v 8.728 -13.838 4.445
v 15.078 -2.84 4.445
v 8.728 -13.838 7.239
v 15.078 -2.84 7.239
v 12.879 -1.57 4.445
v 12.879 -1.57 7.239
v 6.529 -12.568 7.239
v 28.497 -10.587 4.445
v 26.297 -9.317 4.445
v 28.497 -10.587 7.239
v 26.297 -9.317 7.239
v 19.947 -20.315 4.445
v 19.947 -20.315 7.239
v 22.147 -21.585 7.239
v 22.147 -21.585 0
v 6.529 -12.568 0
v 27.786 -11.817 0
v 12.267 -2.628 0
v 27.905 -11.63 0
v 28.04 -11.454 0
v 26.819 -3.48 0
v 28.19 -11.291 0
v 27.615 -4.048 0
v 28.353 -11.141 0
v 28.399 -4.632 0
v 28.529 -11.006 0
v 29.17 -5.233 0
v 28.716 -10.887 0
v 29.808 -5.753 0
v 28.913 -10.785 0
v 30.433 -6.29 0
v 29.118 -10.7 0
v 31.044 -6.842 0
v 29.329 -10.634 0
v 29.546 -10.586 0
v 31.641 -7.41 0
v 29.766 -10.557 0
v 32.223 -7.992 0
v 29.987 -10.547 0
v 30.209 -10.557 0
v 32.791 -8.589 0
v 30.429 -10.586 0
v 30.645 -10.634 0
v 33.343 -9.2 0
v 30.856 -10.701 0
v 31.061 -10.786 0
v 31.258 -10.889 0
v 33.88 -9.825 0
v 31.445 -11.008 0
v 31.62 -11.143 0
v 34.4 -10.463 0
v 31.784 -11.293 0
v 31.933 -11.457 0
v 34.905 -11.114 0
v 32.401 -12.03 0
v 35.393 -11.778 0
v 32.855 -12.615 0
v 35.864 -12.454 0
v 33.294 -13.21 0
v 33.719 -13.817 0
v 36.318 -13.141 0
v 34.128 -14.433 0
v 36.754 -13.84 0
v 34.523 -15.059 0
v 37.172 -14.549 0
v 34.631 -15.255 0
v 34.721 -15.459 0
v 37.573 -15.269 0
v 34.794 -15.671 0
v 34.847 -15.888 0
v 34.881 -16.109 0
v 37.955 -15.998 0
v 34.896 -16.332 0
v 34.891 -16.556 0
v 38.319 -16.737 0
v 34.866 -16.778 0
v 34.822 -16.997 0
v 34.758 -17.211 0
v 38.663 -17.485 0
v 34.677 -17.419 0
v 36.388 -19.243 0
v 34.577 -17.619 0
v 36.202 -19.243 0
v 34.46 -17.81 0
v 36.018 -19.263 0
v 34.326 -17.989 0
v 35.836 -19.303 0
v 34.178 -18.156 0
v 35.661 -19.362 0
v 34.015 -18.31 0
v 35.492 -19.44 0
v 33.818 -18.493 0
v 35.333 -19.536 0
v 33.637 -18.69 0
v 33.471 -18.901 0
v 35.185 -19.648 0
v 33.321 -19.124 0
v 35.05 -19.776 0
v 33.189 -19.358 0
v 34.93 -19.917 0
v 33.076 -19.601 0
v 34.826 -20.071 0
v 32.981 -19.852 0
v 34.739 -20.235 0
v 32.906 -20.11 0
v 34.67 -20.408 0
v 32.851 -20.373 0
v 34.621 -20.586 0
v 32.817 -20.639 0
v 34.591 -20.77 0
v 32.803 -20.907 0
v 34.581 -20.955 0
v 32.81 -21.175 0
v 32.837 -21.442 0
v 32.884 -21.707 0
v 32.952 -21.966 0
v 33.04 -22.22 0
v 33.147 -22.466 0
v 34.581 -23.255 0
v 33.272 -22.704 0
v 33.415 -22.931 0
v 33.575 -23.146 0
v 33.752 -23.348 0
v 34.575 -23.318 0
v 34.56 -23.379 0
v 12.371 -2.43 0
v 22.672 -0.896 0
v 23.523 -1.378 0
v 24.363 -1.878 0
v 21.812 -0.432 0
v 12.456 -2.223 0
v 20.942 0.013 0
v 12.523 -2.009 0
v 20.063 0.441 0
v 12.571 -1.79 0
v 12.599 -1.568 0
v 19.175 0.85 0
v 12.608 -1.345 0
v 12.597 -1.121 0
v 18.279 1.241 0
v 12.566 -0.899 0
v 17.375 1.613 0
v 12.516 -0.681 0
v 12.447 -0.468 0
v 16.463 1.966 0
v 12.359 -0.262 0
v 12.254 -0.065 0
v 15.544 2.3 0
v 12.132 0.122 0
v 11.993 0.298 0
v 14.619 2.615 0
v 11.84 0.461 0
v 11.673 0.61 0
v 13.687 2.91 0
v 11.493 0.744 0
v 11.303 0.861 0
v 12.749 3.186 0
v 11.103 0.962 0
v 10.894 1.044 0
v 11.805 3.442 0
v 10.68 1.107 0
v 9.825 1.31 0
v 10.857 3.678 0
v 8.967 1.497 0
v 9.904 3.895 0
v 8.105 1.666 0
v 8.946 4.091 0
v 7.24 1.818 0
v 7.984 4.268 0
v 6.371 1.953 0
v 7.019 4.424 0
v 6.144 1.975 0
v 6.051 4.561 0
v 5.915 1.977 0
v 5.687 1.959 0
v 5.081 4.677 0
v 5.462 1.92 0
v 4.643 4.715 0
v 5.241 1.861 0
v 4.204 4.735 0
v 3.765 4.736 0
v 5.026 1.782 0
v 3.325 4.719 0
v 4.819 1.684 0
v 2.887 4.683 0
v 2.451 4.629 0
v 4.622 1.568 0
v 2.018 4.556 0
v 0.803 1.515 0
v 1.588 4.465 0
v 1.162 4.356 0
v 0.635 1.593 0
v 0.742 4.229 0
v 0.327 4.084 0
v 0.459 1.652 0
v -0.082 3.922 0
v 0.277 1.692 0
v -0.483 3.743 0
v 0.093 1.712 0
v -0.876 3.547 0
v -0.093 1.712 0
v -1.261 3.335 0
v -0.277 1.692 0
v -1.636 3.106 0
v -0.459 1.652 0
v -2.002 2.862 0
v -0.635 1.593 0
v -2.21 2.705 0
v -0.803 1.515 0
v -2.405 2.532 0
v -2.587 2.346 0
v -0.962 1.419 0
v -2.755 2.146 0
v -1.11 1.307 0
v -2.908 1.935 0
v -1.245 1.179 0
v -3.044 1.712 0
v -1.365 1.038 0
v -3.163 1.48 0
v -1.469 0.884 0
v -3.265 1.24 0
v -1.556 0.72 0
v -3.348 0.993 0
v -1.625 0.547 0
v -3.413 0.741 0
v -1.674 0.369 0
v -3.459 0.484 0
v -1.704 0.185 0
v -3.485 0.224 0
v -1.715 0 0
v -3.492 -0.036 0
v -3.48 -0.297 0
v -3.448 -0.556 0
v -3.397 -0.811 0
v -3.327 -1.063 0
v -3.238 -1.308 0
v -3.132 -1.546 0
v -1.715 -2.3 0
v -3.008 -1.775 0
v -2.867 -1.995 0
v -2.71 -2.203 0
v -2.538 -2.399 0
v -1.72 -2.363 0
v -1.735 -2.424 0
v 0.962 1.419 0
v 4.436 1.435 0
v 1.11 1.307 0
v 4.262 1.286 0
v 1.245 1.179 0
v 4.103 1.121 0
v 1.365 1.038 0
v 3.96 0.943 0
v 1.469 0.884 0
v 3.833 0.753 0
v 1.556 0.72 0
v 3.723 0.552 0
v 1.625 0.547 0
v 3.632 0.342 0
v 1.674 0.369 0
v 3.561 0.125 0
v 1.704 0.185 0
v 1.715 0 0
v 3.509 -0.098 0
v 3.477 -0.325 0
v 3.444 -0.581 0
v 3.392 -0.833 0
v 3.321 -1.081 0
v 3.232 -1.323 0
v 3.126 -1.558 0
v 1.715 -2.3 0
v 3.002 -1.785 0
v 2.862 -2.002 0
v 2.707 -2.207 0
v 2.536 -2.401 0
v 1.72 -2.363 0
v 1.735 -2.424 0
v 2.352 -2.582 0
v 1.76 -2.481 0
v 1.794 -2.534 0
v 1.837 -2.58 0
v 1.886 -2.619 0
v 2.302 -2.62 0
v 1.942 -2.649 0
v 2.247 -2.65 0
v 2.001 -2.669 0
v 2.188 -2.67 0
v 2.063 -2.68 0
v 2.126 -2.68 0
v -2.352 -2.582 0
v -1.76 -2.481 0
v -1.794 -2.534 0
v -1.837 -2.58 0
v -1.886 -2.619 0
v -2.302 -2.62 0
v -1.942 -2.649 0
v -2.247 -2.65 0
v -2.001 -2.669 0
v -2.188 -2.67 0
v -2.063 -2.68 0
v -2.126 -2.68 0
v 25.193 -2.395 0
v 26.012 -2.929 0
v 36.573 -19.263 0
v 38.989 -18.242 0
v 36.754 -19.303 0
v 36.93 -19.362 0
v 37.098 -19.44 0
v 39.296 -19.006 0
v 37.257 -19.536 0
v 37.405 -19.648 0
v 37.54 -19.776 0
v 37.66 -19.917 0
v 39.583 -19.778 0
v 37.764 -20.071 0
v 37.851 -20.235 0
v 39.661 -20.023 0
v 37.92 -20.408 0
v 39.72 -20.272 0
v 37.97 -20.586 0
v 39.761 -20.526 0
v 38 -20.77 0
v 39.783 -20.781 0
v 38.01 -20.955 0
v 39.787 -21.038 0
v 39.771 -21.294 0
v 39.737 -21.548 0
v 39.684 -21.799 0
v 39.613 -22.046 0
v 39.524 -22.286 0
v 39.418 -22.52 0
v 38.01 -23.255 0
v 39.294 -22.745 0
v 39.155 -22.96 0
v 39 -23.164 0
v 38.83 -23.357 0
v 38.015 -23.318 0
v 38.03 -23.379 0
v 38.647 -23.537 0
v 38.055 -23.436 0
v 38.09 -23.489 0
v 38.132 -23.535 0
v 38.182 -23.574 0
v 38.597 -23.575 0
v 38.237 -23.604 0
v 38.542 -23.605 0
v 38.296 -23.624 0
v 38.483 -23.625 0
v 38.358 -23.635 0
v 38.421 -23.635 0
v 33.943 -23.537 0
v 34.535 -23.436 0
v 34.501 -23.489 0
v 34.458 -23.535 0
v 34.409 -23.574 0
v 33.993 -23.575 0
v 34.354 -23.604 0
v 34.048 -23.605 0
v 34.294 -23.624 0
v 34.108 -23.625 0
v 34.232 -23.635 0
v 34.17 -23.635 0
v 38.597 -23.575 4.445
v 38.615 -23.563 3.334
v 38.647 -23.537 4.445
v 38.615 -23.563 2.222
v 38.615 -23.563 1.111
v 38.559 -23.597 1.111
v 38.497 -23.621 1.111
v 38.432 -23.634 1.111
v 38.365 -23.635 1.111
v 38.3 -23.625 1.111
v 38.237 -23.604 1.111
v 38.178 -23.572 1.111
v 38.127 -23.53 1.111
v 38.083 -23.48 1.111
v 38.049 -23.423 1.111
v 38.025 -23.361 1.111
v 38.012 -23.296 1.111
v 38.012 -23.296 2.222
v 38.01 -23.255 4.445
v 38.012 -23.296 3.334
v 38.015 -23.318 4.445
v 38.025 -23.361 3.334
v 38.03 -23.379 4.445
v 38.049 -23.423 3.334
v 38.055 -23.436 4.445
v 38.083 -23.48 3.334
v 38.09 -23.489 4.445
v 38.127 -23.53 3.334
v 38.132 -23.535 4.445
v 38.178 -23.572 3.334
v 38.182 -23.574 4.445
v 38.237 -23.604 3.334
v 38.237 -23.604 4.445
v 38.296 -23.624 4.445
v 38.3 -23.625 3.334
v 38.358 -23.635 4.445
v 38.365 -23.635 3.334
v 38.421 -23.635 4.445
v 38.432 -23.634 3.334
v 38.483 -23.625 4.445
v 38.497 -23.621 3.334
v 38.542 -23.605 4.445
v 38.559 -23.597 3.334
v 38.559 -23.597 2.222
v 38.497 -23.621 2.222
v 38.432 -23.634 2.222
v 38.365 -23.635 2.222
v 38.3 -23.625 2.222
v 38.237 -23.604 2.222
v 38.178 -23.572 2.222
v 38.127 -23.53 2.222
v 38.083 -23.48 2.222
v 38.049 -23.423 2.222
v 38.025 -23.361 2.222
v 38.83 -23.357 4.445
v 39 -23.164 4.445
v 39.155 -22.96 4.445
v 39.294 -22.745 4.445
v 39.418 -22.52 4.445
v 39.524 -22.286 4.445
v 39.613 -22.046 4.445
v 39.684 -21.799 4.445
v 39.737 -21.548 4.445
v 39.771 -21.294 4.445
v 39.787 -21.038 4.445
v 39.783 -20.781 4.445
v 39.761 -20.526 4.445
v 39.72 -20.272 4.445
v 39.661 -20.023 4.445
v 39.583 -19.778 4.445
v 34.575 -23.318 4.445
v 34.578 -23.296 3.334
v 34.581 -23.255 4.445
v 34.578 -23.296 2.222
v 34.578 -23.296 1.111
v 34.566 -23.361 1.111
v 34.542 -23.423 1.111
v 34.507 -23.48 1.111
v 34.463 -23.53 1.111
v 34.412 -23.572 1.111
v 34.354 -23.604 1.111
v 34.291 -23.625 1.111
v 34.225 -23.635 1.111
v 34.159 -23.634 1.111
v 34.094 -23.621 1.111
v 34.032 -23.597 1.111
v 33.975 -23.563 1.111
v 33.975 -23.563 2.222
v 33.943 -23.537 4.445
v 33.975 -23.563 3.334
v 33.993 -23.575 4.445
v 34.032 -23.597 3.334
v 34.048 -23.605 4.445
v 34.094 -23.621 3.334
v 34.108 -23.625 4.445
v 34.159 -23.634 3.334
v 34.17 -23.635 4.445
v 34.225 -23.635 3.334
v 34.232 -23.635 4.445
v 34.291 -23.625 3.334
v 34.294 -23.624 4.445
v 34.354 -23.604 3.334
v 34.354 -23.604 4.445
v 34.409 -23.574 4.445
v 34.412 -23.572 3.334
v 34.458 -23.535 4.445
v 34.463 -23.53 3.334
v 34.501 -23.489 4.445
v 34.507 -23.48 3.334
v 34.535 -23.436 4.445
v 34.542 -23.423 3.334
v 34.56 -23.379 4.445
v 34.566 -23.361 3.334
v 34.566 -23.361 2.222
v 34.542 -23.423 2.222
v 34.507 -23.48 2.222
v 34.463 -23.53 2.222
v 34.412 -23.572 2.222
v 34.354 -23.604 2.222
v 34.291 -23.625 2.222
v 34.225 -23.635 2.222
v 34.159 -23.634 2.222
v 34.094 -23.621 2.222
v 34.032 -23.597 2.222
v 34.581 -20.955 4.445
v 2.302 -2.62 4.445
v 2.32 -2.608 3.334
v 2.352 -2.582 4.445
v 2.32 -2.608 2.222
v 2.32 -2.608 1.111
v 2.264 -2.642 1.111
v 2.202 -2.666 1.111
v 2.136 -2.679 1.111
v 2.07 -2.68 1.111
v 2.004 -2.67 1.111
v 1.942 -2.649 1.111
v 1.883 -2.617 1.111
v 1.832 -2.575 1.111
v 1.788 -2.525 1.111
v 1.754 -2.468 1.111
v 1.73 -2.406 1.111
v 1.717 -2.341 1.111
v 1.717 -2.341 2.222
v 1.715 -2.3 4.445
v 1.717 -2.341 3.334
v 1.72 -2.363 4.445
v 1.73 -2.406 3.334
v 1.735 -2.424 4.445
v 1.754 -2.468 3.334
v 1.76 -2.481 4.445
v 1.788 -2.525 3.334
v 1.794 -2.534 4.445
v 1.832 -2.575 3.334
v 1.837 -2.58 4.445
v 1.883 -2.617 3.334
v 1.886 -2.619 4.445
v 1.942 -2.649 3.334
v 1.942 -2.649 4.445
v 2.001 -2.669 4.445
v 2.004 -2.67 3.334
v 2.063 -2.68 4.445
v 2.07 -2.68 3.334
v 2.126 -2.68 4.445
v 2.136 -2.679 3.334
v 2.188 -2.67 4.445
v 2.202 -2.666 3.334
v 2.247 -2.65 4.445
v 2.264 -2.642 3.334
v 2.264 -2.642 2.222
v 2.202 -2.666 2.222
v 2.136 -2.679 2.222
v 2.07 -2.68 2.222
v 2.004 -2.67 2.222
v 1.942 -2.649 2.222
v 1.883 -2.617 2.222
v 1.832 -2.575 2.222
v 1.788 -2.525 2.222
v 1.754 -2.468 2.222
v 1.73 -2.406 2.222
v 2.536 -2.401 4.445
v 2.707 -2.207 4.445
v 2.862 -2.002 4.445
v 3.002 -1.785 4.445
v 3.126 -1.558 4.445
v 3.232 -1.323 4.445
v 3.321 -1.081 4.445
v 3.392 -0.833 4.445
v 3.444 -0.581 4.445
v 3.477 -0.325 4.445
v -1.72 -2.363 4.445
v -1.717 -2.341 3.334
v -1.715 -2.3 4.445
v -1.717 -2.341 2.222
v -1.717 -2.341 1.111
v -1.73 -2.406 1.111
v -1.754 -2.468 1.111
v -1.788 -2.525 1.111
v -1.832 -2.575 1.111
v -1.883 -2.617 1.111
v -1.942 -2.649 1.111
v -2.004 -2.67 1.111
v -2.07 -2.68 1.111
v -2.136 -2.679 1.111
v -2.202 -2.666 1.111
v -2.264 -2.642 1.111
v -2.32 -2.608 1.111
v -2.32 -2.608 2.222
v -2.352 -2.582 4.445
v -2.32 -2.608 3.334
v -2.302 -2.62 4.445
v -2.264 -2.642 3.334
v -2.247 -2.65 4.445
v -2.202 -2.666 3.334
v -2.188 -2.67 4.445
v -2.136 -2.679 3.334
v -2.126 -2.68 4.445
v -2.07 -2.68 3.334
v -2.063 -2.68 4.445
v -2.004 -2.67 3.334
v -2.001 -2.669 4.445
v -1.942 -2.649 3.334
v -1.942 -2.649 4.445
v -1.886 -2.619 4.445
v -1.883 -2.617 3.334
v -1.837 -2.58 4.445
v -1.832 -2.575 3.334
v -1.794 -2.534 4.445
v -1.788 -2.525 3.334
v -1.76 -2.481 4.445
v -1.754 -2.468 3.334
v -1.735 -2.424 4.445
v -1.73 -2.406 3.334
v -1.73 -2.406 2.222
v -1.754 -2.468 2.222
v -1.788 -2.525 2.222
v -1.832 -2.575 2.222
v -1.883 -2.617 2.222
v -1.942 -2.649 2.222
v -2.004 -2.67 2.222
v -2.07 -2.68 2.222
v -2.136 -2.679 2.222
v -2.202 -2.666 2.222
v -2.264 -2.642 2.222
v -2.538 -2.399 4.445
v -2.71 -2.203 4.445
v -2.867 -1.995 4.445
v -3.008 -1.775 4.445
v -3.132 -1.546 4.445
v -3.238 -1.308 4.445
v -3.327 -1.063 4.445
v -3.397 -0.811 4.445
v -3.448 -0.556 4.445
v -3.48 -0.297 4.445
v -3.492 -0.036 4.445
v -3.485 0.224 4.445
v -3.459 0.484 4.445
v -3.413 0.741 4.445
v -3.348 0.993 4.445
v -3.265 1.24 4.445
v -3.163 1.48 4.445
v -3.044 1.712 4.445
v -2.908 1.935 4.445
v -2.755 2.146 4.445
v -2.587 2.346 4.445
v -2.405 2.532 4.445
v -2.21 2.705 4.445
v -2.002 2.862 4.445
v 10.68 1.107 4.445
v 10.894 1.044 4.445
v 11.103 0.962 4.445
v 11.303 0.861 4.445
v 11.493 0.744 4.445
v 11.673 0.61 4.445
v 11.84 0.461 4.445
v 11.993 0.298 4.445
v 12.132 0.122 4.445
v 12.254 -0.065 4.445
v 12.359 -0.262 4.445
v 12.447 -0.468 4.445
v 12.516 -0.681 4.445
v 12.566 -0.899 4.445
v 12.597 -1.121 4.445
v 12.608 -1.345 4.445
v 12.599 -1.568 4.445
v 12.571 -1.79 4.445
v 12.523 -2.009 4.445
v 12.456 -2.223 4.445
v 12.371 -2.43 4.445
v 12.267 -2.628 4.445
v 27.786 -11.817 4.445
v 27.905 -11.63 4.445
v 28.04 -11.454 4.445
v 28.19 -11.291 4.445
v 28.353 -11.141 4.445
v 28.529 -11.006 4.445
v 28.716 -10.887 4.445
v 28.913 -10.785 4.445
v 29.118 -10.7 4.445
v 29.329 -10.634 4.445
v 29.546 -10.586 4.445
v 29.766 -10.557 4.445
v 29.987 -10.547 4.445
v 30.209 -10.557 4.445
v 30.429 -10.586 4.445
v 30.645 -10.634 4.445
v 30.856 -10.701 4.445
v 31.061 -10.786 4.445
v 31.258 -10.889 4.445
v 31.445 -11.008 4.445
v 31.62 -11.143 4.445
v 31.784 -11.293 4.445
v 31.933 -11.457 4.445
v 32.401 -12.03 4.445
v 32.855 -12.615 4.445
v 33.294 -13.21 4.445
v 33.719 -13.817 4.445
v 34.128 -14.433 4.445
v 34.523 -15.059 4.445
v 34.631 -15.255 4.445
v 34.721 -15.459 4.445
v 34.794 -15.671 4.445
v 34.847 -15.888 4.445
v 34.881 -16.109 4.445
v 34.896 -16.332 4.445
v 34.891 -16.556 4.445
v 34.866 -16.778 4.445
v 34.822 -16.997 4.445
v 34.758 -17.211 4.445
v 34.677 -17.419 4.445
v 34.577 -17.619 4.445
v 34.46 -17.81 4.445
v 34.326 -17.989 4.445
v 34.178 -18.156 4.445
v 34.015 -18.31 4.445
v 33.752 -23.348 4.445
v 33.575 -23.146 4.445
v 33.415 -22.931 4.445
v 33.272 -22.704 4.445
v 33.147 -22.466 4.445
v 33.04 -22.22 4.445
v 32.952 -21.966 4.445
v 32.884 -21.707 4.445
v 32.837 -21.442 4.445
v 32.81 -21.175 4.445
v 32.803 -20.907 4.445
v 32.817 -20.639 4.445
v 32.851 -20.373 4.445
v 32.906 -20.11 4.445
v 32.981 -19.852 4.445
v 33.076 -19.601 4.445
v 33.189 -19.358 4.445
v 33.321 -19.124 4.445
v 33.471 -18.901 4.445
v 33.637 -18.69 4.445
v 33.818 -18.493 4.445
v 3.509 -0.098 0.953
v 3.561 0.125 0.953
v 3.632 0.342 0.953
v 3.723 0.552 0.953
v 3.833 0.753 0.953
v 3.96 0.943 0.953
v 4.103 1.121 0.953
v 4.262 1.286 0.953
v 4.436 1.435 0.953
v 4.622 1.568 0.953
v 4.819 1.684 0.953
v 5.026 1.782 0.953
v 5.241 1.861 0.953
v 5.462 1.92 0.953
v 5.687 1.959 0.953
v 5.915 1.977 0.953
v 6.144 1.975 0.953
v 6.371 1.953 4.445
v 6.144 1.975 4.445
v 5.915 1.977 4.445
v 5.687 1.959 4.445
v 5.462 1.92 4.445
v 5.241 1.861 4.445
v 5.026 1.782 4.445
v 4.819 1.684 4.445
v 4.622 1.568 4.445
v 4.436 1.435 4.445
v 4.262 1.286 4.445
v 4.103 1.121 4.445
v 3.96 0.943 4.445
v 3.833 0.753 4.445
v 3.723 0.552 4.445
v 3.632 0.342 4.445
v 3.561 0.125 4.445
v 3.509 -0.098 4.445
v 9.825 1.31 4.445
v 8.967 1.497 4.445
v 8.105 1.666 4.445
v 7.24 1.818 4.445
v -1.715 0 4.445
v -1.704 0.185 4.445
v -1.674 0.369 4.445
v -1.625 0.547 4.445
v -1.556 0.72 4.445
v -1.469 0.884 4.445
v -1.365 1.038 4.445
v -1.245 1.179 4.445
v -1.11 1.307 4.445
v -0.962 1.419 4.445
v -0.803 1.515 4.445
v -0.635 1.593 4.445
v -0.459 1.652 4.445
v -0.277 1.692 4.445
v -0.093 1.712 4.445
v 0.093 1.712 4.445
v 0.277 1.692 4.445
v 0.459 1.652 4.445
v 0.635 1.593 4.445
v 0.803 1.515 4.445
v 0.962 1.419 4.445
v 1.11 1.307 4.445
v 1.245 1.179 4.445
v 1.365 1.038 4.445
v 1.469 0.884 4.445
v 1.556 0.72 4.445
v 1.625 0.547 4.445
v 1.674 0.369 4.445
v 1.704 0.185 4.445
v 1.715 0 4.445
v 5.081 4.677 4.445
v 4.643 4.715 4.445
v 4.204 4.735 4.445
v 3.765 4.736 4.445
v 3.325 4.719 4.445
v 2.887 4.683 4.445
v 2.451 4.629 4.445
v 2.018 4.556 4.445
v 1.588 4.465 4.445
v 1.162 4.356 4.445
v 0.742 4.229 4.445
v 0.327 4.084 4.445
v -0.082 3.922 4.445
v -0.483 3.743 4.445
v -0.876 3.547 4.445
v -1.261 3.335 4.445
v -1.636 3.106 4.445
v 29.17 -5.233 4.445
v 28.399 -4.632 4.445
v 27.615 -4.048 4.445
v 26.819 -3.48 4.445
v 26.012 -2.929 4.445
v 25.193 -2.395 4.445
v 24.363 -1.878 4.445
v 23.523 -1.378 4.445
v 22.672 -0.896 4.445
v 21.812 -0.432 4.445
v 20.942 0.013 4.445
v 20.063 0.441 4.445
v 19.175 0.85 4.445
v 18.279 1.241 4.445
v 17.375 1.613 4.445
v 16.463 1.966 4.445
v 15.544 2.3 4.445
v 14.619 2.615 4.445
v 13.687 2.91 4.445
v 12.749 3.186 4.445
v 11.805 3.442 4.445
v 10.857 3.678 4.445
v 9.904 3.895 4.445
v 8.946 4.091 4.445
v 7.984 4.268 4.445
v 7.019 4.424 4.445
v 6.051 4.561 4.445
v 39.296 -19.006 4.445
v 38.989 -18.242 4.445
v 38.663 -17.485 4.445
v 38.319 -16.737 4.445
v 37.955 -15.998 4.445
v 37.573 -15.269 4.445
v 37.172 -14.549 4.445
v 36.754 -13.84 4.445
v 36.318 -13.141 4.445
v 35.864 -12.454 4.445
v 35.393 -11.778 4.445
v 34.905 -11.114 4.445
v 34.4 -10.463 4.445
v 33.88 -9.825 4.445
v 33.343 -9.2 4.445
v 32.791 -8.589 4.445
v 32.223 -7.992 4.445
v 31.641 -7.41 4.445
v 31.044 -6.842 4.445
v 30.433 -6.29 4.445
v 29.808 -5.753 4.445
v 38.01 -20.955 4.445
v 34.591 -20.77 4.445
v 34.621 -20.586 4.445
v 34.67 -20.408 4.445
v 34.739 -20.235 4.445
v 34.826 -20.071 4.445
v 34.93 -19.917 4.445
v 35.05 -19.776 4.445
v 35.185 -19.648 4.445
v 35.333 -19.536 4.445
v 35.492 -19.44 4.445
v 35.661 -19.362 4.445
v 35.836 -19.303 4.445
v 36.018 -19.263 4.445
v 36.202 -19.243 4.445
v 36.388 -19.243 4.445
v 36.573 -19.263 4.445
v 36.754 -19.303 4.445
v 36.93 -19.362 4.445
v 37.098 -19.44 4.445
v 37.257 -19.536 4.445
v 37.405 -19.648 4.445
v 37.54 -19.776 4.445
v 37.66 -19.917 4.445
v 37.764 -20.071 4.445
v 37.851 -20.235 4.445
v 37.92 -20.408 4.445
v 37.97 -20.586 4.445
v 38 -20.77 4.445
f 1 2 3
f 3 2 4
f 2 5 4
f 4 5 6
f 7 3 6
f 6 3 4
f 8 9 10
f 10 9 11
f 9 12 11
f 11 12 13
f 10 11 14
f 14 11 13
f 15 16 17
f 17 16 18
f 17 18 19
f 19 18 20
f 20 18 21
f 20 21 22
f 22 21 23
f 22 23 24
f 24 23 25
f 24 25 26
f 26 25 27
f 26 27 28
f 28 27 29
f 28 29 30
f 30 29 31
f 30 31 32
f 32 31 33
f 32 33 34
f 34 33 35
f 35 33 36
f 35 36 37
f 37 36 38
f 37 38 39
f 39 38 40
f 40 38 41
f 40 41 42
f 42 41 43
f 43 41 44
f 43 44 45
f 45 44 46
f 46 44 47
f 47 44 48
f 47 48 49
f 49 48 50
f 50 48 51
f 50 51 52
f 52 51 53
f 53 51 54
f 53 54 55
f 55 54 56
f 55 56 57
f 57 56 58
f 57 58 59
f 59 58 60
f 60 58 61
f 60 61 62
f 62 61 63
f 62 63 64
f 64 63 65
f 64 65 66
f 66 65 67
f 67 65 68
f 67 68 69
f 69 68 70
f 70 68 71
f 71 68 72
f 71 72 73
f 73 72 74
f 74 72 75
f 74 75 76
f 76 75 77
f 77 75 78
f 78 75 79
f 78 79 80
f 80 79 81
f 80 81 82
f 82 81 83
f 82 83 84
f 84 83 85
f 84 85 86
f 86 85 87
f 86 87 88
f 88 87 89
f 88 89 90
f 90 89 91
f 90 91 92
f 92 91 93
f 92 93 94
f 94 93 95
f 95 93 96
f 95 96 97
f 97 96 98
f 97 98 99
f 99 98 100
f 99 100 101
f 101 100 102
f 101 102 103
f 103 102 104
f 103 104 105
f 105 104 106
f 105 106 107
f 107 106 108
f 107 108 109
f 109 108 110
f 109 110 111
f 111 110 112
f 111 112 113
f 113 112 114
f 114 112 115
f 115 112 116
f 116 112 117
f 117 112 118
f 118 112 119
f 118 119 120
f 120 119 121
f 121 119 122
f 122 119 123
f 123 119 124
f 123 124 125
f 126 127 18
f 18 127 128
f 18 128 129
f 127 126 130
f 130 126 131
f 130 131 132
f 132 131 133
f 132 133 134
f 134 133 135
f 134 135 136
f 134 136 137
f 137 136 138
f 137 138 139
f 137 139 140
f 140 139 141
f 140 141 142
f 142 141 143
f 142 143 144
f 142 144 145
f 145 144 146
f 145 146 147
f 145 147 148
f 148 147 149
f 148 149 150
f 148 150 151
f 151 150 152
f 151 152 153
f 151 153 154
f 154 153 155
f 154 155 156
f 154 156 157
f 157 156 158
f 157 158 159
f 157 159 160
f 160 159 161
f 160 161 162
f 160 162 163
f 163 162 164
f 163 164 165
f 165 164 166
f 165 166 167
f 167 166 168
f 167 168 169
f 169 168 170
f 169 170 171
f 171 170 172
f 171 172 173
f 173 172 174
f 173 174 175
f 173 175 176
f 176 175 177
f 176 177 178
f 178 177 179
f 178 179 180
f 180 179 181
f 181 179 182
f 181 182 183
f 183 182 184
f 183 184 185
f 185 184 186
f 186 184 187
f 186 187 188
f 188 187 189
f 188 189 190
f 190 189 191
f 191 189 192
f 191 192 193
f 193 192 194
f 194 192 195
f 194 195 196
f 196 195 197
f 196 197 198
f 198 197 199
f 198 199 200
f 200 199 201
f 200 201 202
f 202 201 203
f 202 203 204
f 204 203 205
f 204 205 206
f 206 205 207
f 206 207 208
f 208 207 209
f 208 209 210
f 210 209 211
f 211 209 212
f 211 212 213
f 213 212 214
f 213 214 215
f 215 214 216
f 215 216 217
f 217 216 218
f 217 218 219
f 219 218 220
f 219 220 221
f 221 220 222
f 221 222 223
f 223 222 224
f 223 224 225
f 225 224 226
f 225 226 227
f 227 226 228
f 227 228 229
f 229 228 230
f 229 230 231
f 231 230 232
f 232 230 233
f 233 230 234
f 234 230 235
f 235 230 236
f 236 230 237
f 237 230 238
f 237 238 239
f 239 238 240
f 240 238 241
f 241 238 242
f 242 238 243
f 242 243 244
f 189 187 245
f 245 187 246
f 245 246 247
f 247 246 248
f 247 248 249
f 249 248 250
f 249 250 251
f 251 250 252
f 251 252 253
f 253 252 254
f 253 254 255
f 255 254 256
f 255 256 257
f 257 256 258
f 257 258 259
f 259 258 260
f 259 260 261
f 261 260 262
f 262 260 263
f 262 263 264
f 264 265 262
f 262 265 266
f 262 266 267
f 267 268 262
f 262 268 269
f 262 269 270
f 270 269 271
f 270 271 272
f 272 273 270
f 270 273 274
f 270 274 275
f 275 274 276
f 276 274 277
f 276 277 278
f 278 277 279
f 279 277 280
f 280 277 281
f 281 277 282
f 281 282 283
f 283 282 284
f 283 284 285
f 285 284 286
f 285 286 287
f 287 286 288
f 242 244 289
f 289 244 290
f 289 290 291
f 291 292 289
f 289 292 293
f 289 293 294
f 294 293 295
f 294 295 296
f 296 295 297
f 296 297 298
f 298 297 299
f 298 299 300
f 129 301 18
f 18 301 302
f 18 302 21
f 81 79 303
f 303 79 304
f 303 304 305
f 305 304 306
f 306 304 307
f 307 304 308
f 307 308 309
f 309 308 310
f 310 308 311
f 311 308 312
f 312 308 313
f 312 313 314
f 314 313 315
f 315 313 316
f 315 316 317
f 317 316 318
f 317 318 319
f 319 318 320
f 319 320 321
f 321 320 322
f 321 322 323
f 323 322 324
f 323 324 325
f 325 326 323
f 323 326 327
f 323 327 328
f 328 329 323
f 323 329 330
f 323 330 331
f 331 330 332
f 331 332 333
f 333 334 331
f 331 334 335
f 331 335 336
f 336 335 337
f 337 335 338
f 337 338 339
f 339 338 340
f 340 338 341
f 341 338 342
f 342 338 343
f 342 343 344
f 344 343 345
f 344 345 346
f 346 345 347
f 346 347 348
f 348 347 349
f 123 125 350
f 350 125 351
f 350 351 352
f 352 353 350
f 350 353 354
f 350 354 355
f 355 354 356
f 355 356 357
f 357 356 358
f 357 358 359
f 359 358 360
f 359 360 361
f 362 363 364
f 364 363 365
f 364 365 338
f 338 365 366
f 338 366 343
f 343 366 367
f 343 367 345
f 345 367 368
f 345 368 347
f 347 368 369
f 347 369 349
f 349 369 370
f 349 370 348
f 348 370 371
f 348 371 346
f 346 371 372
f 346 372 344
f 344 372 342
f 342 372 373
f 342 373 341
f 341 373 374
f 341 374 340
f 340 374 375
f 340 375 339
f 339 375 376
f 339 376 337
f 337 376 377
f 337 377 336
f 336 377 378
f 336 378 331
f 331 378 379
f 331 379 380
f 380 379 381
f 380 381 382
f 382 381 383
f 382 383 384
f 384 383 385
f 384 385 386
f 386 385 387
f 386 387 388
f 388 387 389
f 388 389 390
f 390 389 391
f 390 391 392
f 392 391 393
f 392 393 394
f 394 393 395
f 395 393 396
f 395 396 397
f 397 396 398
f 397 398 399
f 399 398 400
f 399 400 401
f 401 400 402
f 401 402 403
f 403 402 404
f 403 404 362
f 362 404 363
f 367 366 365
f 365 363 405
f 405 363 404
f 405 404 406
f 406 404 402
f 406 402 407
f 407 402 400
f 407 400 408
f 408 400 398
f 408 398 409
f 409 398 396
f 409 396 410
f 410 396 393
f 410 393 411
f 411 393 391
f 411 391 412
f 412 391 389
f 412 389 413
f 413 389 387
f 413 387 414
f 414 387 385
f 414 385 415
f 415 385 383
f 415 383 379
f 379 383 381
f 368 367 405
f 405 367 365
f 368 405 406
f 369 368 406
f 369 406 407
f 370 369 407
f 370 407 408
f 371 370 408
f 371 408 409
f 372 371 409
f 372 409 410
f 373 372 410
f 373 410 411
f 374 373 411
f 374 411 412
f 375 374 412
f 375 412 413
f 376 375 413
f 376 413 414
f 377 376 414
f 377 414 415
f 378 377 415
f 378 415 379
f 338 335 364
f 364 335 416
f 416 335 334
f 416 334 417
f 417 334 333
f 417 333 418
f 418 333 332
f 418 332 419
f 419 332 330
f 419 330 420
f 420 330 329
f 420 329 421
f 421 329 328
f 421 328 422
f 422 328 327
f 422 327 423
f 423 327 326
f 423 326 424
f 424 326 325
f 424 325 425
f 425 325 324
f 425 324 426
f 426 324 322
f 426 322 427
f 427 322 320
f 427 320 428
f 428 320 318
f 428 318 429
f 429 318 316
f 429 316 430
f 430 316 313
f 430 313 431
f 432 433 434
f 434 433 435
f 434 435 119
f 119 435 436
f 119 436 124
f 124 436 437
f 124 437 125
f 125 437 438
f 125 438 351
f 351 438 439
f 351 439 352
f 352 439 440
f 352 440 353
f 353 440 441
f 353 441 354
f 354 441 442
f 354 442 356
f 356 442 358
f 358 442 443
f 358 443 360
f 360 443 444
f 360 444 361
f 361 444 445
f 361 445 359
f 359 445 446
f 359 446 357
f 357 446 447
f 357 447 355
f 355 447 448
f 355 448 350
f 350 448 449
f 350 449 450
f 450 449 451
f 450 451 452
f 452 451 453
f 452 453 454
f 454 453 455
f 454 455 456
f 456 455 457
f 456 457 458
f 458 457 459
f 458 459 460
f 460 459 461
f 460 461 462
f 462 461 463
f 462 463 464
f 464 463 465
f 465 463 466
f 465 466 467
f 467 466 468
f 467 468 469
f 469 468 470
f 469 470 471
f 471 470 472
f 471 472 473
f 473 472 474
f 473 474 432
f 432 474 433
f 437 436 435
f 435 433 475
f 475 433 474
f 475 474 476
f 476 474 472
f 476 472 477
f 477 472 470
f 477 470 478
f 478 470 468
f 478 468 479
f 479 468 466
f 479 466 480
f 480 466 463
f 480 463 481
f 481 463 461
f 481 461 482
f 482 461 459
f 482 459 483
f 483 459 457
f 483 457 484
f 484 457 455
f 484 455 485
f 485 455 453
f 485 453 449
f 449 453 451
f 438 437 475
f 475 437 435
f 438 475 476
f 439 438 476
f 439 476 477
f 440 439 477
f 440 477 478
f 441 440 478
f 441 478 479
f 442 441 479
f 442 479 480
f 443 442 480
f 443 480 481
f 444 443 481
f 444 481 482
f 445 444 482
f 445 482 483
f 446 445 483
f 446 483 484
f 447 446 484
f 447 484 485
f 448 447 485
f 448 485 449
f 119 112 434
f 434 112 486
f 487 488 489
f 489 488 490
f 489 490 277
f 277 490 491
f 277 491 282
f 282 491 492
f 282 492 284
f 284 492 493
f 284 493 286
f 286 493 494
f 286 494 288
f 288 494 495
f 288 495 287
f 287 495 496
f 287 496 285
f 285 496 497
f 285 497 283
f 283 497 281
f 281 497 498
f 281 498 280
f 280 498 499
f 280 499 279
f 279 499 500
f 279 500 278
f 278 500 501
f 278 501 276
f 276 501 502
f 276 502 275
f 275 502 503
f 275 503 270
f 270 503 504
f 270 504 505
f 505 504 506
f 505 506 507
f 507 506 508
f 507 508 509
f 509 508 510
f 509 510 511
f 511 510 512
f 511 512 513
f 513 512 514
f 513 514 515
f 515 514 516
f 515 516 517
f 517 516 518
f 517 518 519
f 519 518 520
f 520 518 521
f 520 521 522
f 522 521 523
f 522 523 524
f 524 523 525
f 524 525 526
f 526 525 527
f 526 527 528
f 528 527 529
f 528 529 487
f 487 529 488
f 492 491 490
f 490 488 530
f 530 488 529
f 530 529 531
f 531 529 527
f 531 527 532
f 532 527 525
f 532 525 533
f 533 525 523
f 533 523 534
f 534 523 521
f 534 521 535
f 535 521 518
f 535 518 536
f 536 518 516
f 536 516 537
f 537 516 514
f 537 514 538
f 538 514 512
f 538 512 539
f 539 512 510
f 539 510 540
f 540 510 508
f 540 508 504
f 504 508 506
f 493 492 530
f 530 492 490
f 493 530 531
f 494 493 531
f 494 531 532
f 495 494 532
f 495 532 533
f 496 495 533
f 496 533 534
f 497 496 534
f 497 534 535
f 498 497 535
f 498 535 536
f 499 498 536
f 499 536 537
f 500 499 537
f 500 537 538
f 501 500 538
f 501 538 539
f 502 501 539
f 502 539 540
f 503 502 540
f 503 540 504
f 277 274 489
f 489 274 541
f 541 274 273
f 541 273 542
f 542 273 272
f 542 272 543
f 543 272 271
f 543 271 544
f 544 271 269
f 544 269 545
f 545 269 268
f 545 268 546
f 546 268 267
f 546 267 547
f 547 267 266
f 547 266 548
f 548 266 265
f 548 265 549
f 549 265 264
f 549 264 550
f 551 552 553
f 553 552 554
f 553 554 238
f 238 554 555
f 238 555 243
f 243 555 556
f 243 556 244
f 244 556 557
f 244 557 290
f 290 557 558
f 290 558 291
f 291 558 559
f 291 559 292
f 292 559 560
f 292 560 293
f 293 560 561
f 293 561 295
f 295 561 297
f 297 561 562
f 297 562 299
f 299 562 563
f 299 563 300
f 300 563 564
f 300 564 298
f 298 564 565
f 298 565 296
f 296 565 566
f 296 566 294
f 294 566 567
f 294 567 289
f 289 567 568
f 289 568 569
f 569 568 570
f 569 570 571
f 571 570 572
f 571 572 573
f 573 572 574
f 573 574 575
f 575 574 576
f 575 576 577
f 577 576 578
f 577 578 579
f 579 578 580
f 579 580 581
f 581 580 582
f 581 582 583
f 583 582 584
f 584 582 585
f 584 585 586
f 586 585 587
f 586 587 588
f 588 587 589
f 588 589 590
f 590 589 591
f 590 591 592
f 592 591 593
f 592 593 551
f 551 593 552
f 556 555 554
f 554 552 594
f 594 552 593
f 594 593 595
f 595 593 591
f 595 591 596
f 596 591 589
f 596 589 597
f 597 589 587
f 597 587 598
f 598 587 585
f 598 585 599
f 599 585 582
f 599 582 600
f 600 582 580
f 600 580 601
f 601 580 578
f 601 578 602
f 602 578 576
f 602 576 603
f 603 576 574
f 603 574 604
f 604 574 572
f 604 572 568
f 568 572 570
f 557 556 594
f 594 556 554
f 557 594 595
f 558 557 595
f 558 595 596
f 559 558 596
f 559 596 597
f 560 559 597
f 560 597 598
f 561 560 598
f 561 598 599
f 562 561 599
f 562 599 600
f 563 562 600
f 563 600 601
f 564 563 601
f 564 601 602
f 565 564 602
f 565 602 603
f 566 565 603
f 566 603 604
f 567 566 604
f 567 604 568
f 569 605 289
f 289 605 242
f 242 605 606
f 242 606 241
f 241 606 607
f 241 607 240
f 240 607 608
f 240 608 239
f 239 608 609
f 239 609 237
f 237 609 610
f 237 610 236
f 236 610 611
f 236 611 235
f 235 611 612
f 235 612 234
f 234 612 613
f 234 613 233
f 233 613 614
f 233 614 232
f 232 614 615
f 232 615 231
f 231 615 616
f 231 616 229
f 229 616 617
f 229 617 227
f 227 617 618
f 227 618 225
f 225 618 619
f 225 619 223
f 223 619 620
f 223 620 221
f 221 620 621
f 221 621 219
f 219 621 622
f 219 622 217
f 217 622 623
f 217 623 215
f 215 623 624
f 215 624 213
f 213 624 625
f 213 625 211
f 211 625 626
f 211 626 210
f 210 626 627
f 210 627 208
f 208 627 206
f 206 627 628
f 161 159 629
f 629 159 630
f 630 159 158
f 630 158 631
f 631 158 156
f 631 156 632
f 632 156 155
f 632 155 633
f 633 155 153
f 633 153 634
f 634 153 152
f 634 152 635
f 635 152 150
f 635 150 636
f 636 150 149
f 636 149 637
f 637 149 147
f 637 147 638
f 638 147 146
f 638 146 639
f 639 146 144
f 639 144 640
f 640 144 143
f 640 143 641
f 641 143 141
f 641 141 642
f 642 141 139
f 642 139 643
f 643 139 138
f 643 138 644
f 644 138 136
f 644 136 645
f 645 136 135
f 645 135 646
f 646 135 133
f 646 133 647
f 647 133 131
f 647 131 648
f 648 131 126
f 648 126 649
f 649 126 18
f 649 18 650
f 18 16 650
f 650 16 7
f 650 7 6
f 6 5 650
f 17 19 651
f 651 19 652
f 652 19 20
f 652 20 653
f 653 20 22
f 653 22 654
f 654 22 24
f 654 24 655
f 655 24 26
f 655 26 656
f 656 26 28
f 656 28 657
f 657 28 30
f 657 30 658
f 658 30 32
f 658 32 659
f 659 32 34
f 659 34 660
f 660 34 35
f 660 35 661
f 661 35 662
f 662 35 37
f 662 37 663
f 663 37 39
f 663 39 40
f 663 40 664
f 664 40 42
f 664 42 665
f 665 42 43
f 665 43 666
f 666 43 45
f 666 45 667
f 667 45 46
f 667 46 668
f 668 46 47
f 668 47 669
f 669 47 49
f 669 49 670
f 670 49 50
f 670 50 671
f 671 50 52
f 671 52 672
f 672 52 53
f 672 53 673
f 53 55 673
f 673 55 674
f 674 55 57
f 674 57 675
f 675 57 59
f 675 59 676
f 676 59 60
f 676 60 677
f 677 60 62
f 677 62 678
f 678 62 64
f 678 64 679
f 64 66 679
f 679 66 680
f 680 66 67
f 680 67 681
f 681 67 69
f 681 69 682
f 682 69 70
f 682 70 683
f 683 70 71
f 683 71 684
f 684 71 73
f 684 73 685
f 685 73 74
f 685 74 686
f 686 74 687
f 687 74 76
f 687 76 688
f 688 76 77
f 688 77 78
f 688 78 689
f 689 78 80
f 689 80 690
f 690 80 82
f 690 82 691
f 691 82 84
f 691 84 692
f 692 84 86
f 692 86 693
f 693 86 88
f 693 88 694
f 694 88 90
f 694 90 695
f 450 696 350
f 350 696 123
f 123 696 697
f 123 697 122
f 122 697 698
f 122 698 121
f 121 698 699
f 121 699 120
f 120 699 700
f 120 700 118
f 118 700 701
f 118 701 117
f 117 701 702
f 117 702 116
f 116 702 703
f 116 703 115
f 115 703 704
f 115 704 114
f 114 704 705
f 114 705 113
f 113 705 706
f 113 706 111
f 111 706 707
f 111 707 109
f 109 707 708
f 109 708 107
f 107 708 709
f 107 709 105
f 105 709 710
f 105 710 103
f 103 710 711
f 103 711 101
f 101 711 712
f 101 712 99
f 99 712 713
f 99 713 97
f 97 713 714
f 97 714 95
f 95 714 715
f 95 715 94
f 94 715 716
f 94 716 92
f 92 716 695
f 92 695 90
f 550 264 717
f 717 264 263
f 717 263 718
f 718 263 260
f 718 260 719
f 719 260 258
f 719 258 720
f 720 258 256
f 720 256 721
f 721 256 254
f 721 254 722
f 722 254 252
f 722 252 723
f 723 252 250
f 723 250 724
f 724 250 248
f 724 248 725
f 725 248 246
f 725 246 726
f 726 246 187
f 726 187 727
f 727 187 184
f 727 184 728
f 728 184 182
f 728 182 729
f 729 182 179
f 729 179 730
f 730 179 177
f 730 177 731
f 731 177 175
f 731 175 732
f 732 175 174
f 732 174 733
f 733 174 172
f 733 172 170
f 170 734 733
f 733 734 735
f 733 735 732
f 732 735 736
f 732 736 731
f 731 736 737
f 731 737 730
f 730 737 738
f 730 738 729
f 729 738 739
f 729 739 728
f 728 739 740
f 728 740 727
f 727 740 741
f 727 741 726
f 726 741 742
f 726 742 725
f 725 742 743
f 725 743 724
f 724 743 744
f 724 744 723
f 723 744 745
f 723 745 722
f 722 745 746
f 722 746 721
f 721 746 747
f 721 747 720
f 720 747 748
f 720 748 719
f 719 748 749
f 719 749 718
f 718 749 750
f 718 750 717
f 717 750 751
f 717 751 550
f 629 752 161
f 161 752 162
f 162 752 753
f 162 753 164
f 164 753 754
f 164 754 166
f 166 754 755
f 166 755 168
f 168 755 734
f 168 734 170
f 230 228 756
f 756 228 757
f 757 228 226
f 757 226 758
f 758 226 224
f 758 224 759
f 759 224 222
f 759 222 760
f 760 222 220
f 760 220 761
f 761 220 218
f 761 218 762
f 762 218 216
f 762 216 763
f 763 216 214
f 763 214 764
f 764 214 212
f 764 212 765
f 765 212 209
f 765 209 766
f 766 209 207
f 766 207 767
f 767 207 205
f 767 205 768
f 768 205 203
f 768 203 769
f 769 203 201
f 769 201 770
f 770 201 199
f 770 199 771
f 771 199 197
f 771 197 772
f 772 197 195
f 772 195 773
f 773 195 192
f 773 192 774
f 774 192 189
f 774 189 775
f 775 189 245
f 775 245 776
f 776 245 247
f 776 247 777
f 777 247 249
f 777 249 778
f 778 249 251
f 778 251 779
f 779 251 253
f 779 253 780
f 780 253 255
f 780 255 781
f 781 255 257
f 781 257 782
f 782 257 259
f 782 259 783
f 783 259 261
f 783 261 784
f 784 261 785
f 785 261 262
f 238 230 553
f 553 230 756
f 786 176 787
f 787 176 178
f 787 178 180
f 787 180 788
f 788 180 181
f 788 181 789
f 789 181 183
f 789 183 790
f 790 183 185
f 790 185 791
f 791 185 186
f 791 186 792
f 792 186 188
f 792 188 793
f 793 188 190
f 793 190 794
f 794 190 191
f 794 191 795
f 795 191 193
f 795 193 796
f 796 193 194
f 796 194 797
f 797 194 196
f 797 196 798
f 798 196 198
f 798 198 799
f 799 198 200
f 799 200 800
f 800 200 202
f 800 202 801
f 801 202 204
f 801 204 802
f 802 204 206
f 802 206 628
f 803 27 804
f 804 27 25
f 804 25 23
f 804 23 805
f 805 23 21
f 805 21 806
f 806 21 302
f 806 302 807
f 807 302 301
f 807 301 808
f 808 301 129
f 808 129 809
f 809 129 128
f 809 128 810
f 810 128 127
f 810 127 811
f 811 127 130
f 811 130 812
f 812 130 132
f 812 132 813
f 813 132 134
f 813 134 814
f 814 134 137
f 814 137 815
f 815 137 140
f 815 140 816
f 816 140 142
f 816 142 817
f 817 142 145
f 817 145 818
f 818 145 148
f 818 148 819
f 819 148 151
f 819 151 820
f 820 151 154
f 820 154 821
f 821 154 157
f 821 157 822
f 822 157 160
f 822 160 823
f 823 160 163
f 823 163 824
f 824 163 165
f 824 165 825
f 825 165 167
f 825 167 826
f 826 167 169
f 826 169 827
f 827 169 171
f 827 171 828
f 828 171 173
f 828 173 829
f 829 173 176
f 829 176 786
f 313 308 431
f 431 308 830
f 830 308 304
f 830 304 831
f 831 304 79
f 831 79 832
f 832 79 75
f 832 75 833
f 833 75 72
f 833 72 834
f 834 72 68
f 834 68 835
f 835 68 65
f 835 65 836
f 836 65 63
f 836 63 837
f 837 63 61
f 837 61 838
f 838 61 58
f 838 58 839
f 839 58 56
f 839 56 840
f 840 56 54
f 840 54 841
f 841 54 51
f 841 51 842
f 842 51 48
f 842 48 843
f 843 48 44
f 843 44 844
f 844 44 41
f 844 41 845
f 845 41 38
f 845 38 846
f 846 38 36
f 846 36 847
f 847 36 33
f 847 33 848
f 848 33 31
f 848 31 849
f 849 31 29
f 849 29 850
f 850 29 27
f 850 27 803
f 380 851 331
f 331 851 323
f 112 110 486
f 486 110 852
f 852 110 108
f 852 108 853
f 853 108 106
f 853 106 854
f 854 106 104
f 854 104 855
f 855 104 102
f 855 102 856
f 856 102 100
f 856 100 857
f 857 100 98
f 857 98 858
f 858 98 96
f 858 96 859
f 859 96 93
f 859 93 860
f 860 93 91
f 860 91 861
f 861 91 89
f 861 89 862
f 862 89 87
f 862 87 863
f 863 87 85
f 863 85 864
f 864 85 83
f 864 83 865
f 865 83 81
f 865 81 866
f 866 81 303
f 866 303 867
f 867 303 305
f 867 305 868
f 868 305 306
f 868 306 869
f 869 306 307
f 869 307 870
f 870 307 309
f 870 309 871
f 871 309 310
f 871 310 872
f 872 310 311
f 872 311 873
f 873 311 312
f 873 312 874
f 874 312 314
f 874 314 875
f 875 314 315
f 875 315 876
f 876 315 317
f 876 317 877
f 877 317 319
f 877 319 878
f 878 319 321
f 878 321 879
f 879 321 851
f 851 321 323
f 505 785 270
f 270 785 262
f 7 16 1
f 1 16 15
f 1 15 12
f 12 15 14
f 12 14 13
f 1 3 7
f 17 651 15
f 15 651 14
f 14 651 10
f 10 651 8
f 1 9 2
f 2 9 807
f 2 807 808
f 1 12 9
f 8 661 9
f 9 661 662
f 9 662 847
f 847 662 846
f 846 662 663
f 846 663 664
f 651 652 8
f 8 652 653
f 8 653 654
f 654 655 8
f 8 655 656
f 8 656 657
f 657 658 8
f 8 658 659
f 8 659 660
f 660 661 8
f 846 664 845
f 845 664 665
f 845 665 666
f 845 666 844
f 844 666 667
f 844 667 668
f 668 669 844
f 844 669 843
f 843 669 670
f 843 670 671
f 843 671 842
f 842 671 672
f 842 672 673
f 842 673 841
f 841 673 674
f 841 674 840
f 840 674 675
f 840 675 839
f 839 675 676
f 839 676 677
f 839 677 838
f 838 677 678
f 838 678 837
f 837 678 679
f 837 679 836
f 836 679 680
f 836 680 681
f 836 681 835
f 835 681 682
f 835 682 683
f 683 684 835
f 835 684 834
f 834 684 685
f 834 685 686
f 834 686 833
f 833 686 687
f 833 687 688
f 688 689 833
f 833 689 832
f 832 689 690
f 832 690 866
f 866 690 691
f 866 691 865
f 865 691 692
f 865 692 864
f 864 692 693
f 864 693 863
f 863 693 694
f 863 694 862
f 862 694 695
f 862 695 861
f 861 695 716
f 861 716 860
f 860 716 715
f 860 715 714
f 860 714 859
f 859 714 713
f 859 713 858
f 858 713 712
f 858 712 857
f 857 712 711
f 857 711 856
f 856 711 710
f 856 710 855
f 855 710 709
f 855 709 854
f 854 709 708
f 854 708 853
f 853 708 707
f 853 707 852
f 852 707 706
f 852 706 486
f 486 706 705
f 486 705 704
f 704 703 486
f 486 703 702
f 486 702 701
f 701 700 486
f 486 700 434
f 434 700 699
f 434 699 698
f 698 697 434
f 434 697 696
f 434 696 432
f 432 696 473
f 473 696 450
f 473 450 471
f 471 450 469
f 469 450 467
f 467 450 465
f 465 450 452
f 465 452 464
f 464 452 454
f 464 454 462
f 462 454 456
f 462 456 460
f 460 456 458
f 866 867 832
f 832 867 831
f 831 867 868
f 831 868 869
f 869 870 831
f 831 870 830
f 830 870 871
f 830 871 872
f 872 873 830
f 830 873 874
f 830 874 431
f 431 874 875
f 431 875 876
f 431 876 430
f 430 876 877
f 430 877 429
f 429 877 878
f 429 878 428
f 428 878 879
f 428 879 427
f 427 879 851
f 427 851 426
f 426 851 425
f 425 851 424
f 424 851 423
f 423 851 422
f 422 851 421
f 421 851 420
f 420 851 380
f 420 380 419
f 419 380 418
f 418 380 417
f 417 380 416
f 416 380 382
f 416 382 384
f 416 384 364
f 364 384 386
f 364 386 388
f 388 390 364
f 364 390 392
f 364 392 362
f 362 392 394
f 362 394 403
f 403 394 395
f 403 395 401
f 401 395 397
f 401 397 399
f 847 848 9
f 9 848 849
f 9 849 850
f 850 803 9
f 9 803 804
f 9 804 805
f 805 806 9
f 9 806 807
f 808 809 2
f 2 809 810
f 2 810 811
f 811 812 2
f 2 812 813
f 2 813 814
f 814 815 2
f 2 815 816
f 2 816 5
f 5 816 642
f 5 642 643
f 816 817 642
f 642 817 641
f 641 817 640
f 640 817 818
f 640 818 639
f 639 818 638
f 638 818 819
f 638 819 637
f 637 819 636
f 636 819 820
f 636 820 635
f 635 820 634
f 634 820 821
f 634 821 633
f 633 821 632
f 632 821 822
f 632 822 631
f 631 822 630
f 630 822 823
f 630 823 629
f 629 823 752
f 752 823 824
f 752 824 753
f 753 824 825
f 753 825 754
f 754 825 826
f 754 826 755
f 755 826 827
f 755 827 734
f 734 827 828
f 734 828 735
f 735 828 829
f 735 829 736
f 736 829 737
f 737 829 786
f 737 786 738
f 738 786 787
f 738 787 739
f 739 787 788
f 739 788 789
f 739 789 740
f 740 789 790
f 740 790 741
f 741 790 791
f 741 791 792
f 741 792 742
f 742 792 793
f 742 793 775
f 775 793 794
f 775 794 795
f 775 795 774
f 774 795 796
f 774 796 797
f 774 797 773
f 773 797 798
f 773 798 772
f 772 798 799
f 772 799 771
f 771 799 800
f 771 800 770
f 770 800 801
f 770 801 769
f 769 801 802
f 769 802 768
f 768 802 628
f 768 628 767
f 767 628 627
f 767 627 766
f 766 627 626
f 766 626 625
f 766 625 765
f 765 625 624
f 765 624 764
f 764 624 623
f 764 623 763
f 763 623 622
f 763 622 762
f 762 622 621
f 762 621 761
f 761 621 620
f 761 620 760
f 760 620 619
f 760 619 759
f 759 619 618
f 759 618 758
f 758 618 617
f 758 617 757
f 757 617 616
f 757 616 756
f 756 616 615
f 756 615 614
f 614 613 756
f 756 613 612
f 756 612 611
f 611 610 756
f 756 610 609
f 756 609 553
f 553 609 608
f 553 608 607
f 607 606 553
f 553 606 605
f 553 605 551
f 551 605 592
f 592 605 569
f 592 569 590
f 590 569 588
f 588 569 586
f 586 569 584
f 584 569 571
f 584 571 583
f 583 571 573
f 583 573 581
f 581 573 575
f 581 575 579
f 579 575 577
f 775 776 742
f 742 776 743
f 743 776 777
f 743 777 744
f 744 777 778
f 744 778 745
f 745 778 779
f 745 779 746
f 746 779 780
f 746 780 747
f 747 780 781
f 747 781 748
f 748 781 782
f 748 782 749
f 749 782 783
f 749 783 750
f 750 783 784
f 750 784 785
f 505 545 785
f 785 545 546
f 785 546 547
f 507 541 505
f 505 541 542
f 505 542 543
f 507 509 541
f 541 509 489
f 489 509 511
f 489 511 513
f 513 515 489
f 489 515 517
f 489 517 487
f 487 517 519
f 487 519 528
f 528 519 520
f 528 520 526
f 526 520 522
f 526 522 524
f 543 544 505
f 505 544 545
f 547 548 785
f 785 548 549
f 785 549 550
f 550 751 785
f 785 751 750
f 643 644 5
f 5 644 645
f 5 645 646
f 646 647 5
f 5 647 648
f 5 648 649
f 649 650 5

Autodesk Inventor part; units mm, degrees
ref_plane "YZ Plane" through (0, 0, 0) normal (1, 0, 0) x (0, 1, 0)
ref_plane "XZ Plane" through (0, 0, 0) normal (0, 1, 0) x (-1, 0, 0)
ref_plane "XY Plane" through (0, 0, 0) normal (0, 0, 1) x (1, 0, 0)
sketch "Sketch1" plane through (0, 0, 0) normal (0, 0, 1) x (1, 0, 0)
  arc A0 (1.7145, 0) -> (-1.7145, 0) centre (0, 0) ccw
  arc A1 (38.0096, -20.955) -> (34.5806, -20.955) centre (36.2951, -20.955) ccw
  line L0 (0, 0) -> (36.5724, 0) construction
  line L1 (-1.7145, 0) -> (-1.7145, -3.0427)
  line L2 (1.7145, 0) -> (1.7145, -3.0427)
  line L3 (34.5806, -20.955) -> (34.5806, -23.9977)
  line L4 (38.0096, -20.955) -> (38.0096, -23.9977)
  line L5 (0, 0) -> (0, -41.91) construction
  arc A2 (29.1702, -5.2325) -> (5.0807, 4.6768) centre (0, -41.91) ccw
  arc A3 (5.0807, 4.6768) -> (-2.0016, 2.862) centre (3.9541, -5.6536) ccw
  arc A4 (39.5833, -19.7781) -> (29.1702, -5.2325) centre (8.8547, -30.7765) ccw
  arc A5 (4.8053, 2.1517) -> (2.7829, 2.1102) centre (3.9541, -5.6536) ccw
  arc A6 (27.5892, -7.2205) -> (4.8053, 2.1517) centre (0, -41.91) ccw
  arc A7 (35.8607, -17.4896) -> (27.5892, -7.2205) centre (8.8547, -30.7765) ccw
  arc A8 (35.8607, -17.4896) -> (34.5806, -23.9977) centre (36.2951, -20.955) ccw
  arc A9 (38.0096, -23.9977) -> (39.5833, -19.7781) centre (36.2951, -20.955) ccw
  arc A10 (-2.0016, 2.862) -> (-1.7145, -3.0427) centre (0, 0) ccw
  arc A11 (1.7145, -3.0427) -> (2.7829, 2.1102) centre (0, 0) ccw
  line L6 (0, 0) -> (36.2951, -20.955) construction
  line L7 (12.8786, -1.5696) -> (6.5286, -12.5681)
  line L8 (6.5286, -12.5681) -> (22.1465, -21.5851)
  line L9 (22.1465, -21.5851) -> (28.4965, -10.5866)
  line L10 (28.4965, -10.5866) -> (12.8786, -1.5696)
  line L11 (28.4965, -10.5866) -> (36.2951, -20.955) construction
  line L12 (12.8786, -1.5696) -> (0, 0) construction
  line L13 (12.8786, -1.5696) -> (13.8891, 0.1806)
  line L14 (28.4965, -10.5866) -> (29.4898, -8.8662)
  line L15 (15.0783, -2.8396) -> (8.7283, -13.8381)
  line L16 (26.2968, -9.3166) -> (19.9468, -20.3151)
  dimension "d0" = 3.429
  dimension "d1" = 30
  dimension "d3" = 41.91
  dimension "d4" = 93.726
  dimension "d6" = 2.54
  dimension "d7" = 5.08
  dimension "d8" = 18.034
  dimension "d9" = 41.91
  dimension "d10" = 6.985
  dimension "d11" = 12.7
  dimension "d12" = 2.54
  dimension "d13" = 2.54
  dimension "d14" = 3.429
  dimension "d15" = 3.4925
extrude "Extrusion1" add sketch "Sketch1" along normal blind 4.445
fillet "Fillet1" radius 2.54 4 edges at (2.7829, 2.1102, 2.2225) (35.8607, -17.4896, 2.2225) (29.4898, -8.8662, 2.2225) (13.8891, 0.1806, 2.2225)
fillet "Fillet2" radius 0.381 4 edges at (-1.7145, -3.0427, 2.2225) (1.7145, -3.0427, 2.2225) (34.5806, -23.9977, 2.2225) (38.0096, -23.9977, 2.2225)
extrude "Extrusion2" add sketch "Sketch1" along normal blind 7.239 contours L10 L15 L8 L7 | L9 L8 L16 L10
properties part number "USBBreakoutHolder"
